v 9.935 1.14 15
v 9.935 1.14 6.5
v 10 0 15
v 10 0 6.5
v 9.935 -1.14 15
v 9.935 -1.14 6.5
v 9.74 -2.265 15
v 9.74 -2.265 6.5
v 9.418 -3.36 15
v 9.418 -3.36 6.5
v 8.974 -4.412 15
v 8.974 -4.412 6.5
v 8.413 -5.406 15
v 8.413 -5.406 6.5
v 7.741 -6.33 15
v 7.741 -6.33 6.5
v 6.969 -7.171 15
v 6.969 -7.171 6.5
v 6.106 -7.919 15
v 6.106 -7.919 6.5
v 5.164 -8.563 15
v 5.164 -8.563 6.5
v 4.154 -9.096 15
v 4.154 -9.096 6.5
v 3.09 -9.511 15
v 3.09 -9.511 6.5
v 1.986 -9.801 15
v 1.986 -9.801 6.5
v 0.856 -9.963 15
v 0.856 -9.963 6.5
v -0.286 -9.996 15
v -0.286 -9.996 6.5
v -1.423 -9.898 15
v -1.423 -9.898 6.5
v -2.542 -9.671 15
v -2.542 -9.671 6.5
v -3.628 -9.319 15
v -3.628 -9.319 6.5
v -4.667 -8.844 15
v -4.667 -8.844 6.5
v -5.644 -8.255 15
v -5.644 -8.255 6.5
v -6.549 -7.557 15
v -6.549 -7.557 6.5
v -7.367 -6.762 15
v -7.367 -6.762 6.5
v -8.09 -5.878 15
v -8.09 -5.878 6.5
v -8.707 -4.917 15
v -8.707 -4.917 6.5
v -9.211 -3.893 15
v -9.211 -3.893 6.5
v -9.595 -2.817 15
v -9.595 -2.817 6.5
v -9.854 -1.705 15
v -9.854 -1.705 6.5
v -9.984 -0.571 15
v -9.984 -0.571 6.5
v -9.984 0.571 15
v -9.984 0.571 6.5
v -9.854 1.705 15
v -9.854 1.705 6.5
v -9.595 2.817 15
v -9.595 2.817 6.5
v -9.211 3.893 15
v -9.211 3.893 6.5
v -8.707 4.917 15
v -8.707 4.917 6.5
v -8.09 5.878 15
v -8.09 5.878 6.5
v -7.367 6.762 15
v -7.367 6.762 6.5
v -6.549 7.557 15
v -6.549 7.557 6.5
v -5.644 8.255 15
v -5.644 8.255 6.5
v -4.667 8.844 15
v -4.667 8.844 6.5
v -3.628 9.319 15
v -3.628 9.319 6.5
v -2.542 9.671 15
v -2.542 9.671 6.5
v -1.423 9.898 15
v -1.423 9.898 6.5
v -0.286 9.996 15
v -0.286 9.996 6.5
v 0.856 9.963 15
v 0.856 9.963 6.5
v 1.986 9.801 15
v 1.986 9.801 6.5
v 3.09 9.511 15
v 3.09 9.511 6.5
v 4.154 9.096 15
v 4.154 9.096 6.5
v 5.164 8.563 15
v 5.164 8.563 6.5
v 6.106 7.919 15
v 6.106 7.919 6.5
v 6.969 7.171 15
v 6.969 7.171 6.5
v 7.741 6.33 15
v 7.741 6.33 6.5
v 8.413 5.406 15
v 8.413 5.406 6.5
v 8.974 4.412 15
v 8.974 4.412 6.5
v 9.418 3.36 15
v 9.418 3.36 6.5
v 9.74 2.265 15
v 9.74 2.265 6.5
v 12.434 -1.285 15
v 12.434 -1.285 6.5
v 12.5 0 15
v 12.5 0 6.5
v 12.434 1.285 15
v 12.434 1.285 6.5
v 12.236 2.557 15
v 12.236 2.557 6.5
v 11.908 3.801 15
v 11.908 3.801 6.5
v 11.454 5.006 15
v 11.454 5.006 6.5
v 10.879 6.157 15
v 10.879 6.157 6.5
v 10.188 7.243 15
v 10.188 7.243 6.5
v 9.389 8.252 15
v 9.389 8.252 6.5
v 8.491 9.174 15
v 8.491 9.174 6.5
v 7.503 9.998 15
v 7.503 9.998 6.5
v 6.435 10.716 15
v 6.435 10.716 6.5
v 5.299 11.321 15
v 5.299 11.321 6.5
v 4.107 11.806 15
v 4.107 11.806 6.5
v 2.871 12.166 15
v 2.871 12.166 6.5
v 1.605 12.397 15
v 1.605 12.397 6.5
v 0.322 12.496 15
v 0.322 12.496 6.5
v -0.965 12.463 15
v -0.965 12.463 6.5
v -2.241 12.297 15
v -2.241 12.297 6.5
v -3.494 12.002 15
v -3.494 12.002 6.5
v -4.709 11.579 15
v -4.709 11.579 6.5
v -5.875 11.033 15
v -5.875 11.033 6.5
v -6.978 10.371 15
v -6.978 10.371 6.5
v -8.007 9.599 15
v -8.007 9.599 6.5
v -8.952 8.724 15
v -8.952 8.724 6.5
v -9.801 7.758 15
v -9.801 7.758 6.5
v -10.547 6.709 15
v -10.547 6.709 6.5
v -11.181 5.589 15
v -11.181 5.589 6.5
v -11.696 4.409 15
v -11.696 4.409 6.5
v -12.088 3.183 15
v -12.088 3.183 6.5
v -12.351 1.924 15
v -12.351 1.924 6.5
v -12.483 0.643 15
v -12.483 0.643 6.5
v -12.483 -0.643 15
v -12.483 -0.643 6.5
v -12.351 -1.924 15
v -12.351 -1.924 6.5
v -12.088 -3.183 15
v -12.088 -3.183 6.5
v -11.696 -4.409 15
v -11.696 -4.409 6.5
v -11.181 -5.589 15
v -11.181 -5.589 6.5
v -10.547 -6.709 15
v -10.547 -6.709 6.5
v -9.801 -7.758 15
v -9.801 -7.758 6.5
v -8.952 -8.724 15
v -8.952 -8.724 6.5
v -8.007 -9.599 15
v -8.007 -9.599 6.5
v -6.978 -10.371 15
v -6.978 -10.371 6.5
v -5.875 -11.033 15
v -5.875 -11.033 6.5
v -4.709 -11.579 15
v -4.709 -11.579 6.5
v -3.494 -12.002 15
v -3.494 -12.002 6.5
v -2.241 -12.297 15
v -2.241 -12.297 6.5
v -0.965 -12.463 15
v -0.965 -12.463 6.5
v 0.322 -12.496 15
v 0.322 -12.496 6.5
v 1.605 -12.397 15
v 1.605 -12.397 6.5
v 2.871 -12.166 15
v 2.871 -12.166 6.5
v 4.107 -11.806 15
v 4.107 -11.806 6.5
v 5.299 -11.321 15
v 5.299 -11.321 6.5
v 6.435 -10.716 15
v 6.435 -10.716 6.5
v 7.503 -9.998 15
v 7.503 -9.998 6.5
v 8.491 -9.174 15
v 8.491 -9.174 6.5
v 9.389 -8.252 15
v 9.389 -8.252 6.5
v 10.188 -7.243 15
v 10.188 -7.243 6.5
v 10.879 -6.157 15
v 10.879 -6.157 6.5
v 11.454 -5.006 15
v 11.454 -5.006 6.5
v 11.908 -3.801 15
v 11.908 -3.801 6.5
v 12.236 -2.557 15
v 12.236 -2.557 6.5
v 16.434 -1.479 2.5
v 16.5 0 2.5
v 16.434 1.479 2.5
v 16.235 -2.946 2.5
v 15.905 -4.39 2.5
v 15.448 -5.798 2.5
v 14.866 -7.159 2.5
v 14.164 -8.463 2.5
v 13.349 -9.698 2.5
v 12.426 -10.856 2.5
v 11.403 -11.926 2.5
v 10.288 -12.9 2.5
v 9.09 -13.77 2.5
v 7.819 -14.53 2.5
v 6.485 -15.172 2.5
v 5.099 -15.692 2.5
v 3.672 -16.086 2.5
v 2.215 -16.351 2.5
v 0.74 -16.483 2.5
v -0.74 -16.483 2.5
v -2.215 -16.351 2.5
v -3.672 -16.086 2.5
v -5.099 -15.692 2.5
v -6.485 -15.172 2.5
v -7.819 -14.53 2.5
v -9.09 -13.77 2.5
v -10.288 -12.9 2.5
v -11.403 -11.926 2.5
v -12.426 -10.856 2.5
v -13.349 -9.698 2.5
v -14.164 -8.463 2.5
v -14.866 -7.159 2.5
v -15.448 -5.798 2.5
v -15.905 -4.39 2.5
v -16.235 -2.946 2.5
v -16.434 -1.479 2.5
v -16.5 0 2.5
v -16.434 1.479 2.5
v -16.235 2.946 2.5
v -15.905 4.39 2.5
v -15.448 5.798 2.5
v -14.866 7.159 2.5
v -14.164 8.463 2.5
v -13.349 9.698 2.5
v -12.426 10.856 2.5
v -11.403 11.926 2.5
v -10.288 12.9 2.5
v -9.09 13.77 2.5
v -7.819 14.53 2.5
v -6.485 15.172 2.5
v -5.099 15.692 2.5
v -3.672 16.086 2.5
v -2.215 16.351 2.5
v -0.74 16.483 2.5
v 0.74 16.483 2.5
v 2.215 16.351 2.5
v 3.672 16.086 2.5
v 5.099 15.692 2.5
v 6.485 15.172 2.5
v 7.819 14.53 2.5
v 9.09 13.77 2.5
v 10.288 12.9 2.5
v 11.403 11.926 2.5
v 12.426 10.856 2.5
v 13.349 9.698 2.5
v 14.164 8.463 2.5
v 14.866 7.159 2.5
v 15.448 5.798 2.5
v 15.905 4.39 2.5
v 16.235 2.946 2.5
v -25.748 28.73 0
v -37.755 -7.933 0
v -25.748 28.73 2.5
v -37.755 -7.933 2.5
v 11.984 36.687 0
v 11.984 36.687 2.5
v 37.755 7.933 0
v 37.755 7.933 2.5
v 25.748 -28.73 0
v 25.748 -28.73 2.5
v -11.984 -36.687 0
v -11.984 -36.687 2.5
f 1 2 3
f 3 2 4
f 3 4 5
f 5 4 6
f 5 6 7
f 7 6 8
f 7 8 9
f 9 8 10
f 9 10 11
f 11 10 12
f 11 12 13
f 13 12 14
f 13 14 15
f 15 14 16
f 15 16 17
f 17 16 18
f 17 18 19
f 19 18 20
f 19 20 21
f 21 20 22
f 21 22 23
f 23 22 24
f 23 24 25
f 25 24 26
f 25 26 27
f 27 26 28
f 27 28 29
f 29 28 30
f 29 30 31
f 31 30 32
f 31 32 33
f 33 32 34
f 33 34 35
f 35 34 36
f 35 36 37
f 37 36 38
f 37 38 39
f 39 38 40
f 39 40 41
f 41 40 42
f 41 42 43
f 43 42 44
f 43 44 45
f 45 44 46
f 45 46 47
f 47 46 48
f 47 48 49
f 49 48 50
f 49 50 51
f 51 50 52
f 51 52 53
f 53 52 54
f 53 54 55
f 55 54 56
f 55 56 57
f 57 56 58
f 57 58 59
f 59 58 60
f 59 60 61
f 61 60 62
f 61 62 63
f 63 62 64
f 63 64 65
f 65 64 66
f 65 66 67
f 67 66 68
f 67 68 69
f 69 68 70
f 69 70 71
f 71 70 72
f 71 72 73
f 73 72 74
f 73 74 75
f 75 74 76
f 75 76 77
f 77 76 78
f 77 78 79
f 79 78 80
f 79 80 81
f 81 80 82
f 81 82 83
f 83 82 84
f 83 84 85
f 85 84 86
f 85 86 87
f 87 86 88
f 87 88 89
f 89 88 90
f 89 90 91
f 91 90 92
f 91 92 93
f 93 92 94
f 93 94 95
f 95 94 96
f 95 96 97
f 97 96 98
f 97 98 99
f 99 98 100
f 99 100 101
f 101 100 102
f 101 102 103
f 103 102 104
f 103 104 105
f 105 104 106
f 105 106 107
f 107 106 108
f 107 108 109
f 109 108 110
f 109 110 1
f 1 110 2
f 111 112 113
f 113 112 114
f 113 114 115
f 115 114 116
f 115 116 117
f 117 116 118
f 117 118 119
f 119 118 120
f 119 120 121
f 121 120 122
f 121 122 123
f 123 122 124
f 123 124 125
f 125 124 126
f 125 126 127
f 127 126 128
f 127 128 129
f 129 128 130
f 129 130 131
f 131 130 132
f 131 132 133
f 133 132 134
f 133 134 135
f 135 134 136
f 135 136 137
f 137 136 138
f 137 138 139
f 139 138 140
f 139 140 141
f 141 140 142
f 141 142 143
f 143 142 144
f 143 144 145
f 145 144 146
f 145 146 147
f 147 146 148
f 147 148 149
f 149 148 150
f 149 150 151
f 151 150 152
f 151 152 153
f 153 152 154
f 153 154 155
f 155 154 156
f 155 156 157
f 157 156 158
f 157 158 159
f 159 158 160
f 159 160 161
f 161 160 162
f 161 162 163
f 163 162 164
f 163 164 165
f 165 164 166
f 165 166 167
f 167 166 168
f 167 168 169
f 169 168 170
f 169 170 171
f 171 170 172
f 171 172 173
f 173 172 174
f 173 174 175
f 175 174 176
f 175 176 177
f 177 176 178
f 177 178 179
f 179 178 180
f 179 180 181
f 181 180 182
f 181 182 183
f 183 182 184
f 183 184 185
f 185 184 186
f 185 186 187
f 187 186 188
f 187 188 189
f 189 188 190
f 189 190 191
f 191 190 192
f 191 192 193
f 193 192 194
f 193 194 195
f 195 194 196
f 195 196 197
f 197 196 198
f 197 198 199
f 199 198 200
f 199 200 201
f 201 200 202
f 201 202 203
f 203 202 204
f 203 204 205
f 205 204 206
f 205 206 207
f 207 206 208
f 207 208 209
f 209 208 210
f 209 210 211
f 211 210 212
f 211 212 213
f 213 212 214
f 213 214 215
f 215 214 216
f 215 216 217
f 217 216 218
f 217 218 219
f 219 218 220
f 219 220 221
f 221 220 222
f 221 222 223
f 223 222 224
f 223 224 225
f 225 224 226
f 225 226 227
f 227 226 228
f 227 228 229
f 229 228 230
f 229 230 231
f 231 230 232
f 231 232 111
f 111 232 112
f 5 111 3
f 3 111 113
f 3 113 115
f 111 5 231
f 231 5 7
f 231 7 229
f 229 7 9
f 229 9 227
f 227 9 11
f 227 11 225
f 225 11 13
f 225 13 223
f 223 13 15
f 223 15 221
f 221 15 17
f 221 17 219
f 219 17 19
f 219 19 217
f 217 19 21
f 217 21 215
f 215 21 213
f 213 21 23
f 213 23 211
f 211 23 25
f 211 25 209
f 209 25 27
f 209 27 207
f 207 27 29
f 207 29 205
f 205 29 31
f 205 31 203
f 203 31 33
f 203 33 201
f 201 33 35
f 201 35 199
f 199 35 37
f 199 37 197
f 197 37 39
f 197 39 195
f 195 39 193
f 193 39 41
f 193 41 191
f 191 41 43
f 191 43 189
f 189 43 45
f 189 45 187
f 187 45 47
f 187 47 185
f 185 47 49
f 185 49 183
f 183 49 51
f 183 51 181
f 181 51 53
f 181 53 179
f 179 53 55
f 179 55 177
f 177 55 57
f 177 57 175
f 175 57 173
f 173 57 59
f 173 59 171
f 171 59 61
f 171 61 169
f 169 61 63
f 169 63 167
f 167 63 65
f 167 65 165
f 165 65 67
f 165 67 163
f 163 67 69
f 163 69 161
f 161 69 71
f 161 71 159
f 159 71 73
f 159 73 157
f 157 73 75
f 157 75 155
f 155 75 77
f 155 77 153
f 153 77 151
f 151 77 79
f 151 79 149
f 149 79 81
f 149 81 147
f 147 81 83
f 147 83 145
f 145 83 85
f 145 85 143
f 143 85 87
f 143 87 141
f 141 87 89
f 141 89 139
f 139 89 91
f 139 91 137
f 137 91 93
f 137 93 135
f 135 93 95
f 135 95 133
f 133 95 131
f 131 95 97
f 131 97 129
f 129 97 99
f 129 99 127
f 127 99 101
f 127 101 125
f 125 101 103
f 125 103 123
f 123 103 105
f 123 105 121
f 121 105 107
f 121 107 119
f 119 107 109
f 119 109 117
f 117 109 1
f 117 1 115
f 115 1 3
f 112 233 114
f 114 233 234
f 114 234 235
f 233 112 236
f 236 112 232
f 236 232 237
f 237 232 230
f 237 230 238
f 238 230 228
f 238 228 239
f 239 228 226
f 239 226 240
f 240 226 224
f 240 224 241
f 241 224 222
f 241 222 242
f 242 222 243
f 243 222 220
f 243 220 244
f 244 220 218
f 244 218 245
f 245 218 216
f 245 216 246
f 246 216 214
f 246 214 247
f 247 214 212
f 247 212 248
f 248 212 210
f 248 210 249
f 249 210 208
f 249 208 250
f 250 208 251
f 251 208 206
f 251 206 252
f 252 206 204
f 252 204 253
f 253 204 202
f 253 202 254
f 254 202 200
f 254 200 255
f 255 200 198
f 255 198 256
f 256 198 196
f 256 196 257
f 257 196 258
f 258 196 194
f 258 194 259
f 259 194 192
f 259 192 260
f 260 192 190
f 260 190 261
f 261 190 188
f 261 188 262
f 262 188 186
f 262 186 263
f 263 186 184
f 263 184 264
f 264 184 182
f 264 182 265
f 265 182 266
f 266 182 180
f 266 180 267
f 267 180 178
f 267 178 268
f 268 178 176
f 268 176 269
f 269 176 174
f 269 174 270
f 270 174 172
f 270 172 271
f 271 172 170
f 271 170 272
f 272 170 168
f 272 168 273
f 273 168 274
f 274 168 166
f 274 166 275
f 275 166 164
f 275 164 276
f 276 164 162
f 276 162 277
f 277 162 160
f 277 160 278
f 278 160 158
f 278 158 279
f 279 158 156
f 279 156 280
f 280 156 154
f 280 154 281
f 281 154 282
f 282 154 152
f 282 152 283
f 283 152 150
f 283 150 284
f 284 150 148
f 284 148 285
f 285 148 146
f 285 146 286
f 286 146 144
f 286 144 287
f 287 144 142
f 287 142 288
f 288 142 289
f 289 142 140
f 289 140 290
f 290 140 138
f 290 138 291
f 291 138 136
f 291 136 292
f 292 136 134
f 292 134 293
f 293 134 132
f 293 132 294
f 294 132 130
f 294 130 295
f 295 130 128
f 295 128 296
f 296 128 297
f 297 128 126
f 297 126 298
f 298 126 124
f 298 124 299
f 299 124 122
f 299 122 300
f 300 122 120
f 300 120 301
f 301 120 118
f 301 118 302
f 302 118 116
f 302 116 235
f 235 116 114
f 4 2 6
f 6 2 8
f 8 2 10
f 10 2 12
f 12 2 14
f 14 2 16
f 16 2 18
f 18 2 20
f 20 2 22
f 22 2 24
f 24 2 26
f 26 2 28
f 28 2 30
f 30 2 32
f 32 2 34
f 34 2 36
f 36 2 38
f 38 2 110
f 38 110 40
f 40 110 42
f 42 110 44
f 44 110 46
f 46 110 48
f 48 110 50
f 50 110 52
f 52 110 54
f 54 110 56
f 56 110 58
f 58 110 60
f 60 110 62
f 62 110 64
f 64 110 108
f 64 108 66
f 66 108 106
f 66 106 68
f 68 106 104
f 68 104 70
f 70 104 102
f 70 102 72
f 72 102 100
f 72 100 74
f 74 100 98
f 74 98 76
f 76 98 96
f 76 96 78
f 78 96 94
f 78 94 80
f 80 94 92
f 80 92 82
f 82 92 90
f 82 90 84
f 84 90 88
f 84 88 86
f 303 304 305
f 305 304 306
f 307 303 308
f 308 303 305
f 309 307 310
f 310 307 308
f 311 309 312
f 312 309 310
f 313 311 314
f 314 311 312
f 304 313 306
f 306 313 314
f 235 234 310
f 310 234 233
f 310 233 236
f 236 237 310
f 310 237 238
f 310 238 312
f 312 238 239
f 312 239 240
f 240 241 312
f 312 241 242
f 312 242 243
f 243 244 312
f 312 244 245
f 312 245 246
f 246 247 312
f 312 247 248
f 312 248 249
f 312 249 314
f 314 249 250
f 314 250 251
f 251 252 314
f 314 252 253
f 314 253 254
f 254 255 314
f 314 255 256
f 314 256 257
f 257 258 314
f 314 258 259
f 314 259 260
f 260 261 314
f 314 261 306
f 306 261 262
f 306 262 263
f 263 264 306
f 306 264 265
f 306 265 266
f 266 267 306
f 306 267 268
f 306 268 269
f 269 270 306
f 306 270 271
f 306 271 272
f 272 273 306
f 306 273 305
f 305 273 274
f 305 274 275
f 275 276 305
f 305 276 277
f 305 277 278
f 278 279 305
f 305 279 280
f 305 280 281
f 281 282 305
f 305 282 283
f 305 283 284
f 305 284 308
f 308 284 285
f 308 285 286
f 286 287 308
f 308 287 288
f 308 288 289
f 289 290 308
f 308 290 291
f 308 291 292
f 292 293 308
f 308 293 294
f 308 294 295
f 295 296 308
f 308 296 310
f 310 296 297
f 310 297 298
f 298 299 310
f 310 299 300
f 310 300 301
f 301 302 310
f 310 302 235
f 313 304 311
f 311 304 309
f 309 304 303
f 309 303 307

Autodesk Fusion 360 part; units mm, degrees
sketch "Sketch1" plane through (0, 0, 0) normal (0, 0, 1) x (1, 0, 0)
  line L0 (-25.748, 28.7303) -> (11.9841, 36.6874)
  line L1 (11.9841, 36.6874) -> (37.7548, 7.9326)
  line L2 (37.7548, 7.9326) -> (25.748, -28.7303)
  line L3 (25.748, -28.7303) -> (-11.9841, -36.6874)
  line L4 (-11.9841, -36.6874) -> (-37.7548, -7.9326)
  line L5 (-37.7548, -7.9326) -> (-25.748, 28.7303)
  line L6 (-25.748, 28.7303) -> (25.748, -28.7303) construction
  dimension "d1" = 38.562
  dimension "d2" = 38.562
  dimension "d3" = 38.613
  dimension "d4" = 38.613
  dimension "d5" = 38.579
  dimension "d6" = 38.579
  dimension "d7" = 66.85
  dimension "d8" = 66.82
extrude "Extrude1" add sketch "Sketch1" along normal blind 2.5
sketch "Sketch2" plane through (0, 0, 2.5) normal (0, 0, 1) x (-1, 0, 0)
  line L0 (37.7548, 7.9326) -> (11.9841, 36.6874)
  line L1 (11.9841, 36.6874) -> (-25.748, 28.7303)
  line L2 (-25.748, 28.7303) -> (-37.7548, -7.9326)
  line L3 (-37.7548, -7.9326) -> (-11.9841, -36.6874)
  line L4 (-11.9841, -36.6874) -> (25.748, -28.7303)
  line L5 (25.748, -28.7303) -> (37.7548, 7.9326)
  circle A0 centre (0, 0) radius 16.5
  dimension "d11" = 33
extrude "Extrude2" add sketch "Sketch2" along normal blind 4 draft -45 contours A0
sketch "Sketch3" plane through (0, 0, 6.5) normal (0, 0, 1) x (-1, 0, 0)
  circle A0 centre (0, 0) radius 12.5
  circle A1 centre (0, 0) radius 10
  circle A2 centre (0, 0) radius 12.5
  dimension "d14" = 20
  dimension "d15" = 25
extrude "Extrude3" add sketch "Sketch3" along normal blind 8.5
